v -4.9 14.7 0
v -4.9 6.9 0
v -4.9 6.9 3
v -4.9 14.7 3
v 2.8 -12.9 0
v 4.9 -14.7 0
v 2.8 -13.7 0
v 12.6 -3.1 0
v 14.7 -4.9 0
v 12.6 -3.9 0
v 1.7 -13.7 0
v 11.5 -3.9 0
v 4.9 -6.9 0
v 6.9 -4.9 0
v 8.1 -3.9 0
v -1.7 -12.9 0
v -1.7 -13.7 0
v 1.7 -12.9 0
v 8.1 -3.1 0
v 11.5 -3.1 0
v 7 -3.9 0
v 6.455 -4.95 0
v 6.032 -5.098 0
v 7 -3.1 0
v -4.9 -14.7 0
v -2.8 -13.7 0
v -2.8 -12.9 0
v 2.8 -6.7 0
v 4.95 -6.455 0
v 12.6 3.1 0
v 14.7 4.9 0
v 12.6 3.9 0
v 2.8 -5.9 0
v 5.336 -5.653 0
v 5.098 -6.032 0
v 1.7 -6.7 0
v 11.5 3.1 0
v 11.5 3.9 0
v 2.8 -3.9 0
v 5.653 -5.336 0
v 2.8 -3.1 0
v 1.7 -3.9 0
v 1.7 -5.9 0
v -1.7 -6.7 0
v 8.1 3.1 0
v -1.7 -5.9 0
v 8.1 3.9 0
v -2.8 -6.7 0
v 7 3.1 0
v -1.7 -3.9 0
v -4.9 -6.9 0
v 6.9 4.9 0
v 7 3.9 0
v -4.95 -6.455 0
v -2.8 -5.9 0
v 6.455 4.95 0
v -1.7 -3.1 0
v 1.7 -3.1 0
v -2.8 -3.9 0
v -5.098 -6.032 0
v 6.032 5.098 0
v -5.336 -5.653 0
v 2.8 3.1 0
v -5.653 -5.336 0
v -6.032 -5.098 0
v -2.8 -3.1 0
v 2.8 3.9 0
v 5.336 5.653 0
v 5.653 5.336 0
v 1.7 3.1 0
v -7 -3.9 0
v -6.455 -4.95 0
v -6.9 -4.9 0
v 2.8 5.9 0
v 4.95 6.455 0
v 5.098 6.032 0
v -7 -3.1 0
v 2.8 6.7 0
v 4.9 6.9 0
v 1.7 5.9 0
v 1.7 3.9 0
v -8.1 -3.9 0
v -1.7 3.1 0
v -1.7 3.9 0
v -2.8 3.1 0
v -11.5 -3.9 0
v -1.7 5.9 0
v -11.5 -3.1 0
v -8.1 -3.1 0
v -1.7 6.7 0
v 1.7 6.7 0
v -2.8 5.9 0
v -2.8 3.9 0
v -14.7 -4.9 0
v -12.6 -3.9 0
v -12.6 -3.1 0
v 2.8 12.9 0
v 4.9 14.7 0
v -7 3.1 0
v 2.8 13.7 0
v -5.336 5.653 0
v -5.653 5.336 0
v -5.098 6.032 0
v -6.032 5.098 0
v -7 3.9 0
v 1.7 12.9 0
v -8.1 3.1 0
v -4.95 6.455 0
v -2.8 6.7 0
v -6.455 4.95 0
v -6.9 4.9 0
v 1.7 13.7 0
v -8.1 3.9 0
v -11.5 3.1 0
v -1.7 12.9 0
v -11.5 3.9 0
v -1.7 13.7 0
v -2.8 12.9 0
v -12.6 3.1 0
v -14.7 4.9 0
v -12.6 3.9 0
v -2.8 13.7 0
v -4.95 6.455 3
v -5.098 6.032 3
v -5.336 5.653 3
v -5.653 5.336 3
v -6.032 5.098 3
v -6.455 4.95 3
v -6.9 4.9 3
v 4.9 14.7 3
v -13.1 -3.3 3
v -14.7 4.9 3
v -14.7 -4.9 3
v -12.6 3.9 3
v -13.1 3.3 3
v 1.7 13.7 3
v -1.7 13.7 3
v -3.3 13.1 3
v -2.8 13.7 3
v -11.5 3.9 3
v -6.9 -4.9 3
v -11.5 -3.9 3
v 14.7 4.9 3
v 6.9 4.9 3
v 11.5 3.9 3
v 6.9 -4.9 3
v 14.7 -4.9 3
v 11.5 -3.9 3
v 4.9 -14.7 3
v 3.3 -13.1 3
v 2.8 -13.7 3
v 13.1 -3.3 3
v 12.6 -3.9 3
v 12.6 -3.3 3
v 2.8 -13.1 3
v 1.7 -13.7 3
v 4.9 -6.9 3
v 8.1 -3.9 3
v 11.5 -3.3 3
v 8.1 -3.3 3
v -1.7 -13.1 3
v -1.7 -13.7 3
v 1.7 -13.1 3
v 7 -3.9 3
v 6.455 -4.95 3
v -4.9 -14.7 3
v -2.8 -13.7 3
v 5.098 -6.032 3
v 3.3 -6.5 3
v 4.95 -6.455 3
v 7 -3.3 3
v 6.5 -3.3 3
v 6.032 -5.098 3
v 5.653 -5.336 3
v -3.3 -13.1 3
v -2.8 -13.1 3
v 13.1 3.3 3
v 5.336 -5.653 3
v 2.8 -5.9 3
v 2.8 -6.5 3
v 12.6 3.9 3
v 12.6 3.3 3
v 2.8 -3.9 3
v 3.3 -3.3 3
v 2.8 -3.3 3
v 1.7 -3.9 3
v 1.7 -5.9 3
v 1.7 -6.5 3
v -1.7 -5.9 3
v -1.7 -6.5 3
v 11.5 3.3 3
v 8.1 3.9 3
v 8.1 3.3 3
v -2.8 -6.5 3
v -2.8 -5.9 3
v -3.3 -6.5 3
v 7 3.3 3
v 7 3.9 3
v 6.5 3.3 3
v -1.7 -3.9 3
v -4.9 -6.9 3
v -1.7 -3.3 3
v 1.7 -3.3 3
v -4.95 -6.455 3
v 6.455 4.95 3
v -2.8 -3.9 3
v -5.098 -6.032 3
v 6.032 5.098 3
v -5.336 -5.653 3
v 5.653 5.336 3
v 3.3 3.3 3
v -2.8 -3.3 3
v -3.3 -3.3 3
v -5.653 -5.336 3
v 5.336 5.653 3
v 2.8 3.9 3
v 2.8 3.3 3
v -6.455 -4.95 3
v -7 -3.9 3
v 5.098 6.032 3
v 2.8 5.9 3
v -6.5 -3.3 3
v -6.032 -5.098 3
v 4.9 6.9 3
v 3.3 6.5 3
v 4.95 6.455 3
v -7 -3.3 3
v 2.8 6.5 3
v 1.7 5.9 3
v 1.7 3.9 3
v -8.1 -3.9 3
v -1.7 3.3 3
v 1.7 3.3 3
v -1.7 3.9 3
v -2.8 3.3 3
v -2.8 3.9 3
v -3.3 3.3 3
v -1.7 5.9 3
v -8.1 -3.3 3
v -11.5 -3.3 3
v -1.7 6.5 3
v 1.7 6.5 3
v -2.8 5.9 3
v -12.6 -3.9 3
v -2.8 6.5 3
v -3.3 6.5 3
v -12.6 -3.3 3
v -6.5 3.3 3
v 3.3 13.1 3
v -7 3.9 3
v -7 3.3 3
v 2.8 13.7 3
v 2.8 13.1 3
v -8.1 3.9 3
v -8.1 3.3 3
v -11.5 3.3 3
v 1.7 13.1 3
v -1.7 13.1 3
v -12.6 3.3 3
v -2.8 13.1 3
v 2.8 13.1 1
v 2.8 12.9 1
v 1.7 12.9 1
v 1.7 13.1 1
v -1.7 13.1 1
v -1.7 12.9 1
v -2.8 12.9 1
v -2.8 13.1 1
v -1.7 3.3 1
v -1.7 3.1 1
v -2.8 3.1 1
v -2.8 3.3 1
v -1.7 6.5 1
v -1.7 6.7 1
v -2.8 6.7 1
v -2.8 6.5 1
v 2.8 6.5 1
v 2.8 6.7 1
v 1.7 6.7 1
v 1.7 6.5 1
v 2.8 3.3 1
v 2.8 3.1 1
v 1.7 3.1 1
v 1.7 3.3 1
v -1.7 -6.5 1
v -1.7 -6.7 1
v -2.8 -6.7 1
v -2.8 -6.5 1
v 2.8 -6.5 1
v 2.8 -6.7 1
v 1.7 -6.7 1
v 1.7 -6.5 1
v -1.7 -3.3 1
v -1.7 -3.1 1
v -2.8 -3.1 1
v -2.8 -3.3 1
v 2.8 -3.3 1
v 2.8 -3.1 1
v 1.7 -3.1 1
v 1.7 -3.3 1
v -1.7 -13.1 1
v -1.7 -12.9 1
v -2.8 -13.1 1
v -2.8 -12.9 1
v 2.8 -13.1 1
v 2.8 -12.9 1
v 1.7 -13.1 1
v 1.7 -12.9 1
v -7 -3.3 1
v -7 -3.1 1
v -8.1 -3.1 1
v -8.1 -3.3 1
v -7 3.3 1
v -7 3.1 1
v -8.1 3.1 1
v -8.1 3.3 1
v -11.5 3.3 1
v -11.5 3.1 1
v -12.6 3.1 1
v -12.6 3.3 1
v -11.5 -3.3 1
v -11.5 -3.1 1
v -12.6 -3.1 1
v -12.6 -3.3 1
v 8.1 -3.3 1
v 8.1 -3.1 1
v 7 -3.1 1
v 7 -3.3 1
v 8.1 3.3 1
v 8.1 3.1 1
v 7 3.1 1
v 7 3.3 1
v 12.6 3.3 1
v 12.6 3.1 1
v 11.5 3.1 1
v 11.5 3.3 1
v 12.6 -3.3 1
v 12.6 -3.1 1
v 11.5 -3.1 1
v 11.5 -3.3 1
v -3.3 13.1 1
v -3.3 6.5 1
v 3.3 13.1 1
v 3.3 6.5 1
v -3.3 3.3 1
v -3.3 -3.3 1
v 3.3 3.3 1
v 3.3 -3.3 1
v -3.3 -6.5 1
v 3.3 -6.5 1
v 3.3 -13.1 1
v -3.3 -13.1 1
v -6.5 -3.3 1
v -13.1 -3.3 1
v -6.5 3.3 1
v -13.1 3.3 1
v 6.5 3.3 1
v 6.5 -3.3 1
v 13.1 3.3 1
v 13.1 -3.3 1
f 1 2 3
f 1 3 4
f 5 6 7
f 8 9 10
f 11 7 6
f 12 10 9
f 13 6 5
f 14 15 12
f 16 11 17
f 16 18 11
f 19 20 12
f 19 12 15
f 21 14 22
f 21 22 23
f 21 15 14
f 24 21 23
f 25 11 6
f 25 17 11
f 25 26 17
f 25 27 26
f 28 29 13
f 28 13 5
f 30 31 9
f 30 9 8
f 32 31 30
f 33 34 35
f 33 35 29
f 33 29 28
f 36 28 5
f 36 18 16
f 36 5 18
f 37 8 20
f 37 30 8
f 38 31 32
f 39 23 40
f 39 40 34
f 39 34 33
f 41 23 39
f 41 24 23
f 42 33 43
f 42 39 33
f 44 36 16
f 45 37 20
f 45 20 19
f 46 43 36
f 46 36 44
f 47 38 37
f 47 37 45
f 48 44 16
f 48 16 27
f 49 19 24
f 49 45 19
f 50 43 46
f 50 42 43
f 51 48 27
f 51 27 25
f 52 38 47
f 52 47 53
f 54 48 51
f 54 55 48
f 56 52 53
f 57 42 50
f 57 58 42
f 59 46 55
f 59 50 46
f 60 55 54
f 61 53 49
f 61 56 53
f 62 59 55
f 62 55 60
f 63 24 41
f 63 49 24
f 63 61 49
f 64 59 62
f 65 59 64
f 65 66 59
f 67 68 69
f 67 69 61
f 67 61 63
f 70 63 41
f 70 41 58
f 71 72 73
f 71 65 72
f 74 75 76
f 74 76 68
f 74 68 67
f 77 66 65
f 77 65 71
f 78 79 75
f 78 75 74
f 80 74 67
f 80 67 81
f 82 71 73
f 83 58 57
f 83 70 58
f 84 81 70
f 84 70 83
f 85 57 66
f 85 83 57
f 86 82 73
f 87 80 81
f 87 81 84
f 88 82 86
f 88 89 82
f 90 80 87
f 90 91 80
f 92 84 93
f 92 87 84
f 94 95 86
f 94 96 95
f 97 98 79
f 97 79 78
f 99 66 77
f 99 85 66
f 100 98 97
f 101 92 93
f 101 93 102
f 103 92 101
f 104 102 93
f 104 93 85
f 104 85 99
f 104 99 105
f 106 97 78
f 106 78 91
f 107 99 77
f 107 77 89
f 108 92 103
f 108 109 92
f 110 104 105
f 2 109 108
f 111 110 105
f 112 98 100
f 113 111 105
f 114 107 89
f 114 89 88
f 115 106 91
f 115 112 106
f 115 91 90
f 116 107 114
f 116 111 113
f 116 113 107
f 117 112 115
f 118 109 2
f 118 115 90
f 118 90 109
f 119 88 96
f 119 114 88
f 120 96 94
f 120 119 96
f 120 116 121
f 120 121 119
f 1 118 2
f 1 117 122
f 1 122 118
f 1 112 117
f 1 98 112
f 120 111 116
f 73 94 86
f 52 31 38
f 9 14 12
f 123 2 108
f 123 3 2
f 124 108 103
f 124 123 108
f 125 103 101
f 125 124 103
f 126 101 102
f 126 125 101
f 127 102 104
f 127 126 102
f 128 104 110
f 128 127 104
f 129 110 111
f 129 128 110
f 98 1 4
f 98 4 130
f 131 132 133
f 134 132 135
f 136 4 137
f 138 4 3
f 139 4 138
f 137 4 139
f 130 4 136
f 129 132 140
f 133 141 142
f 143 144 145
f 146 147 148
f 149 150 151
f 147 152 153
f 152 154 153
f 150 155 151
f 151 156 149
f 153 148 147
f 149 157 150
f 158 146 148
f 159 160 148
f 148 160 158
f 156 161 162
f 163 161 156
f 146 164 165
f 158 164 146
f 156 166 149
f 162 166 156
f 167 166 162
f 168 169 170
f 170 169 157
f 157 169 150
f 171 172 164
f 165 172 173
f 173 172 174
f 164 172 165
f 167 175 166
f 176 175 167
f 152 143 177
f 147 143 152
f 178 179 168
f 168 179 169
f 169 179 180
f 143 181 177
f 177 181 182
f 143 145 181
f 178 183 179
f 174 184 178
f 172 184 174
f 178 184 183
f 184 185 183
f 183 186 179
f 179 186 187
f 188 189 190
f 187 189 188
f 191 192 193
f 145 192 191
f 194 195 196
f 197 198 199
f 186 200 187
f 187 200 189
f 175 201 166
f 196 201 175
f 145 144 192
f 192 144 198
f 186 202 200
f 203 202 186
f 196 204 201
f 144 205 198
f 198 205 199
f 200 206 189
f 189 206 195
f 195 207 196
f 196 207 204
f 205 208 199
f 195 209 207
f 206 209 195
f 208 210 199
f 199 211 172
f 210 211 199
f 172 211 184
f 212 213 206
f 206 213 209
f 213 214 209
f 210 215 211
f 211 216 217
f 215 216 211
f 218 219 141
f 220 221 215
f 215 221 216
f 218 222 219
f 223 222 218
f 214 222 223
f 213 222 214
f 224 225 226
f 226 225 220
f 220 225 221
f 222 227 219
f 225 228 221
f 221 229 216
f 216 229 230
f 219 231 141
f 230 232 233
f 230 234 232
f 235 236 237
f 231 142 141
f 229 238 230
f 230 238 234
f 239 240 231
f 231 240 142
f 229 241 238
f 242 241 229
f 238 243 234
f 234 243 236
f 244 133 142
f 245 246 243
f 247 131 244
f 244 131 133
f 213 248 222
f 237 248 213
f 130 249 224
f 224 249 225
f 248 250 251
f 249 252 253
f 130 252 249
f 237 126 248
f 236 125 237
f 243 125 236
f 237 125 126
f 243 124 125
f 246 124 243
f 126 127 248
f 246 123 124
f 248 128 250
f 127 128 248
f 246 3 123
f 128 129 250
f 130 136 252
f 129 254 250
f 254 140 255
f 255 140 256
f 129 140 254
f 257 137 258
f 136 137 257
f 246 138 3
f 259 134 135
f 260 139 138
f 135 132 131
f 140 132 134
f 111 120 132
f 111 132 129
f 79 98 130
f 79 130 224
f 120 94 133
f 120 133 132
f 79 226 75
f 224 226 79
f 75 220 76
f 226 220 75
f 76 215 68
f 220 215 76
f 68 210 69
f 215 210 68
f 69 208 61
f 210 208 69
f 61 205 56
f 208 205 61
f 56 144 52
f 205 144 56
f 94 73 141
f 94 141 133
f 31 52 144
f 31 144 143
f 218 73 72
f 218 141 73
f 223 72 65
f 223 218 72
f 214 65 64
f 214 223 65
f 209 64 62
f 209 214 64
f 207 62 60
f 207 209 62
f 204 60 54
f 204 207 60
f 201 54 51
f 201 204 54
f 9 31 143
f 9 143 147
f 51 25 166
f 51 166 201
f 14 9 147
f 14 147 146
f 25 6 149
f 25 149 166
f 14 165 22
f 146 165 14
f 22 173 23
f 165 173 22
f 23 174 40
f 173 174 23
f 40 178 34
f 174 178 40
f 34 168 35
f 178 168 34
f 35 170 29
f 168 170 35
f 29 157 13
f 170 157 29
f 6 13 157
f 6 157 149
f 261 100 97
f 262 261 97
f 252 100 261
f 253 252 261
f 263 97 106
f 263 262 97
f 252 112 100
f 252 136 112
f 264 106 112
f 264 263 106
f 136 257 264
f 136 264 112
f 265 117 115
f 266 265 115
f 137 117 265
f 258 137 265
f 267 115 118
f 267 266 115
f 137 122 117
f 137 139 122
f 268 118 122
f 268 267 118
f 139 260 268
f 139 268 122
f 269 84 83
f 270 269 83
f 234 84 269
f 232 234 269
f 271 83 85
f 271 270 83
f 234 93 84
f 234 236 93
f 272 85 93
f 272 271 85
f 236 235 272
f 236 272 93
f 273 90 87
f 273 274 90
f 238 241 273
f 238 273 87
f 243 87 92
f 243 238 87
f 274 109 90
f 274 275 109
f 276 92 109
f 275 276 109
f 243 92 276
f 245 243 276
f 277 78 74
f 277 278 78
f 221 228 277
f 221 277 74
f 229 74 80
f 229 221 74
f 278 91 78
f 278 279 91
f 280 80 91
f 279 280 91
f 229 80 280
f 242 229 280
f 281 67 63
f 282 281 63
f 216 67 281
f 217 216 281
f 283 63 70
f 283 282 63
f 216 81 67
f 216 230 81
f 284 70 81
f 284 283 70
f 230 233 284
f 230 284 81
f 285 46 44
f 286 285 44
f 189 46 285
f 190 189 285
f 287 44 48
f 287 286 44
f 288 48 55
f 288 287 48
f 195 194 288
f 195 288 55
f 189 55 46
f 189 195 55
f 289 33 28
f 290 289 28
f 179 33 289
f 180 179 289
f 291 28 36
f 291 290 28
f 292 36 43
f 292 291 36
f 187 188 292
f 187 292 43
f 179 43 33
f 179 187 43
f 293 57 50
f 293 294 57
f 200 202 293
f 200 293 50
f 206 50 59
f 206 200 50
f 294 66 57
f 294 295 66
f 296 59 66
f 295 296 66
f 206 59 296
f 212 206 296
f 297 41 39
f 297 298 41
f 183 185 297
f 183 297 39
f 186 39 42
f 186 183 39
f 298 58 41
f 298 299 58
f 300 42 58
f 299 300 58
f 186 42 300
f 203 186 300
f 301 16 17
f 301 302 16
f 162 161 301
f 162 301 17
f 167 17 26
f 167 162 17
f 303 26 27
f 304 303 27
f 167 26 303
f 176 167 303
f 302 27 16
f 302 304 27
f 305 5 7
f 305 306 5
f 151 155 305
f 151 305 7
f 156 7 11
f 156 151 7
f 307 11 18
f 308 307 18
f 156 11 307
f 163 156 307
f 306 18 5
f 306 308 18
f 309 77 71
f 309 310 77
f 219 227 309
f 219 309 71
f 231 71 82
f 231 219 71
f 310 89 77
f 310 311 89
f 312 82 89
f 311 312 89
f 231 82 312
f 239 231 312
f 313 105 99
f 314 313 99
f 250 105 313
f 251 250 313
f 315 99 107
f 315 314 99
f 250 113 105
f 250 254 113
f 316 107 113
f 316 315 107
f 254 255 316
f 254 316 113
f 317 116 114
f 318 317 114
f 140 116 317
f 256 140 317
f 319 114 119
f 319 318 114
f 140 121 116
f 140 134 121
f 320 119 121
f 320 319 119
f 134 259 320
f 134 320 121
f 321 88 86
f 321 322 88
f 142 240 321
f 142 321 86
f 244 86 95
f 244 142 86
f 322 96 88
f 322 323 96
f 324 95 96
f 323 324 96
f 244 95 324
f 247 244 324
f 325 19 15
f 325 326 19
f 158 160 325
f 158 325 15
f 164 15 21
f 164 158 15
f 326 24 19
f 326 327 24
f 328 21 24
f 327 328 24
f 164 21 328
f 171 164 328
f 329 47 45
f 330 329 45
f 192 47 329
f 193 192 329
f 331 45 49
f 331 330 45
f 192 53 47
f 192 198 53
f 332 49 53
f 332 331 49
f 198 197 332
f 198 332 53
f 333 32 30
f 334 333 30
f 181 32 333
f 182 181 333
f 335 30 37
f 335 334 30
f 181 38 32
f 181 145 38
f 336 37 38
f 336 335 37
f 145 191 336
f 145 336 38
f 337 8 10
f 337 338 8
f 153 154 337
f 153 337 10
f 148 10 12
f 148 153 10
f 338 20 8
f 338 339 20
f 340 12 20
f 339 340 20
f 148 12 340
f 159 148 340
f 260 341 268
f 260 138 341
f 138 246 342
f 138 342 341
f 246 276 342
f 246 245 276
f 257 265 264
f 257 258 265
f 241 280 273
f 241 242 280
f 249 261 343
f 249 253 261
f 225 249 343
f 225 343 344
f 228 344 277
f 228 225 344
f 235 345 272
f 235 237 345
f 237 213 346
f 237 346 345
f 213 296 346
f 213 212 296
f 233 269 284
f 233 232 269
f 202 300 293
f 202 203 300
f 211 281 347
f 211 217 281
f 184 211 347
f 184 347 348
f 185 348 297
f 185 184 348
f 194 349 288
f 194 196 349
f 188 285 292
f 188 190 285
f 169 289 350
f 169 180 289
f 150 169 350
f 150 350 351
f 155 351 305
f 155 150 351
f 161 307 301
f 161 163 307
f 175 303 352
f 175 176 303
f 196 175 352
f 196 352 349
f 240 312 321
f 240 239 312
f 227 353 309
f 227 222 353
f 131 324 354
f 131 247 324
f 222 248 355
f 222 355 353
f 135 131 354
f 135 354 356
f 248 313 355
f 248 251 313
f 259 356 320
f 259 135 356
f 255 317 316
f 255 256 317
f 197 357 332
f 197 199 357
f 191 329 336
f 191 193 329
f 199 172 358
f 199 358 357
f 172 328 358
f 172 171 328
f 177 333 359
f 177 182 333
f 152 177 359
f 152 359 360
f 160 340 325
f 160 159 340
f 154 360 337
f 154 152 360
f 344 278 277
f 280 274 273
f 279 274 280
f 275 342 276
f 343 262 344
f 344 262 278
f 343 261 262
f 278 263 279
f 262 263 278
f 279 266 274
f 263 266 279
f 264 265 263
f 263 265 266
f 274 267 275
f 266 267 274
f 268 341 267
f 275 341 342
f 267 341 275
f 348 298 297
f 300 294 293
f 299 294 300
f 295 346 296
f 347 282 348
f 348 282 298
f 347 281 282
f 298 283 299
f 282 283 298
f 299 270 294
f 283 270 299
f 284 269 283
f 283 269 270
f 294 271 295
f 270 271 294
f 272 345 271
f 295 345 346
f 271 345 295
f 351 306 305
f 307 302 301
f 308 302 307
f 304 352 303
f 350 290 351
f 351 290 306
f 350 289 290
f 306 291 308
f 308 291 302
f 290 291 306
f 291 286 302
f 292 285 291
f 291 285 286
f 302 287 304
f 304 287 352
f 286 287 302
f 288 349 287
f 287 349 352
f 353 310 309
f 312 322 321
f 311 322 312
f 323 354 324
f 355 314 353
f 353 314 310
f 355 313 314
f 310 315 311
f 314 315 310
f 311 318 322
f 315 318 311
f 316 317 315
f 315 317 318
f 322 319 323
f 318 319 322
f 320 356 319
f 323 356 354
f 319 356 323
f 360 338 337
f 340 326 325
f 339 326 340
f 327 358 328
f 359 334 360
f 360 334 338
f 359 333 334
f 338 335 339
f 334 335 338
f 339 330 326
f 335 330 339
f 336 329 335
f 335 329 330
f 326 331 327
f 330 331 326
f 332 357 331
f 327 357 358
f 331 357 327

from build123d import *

# Parameters (mm, degrees)
PAD_DEPTH                          = 3
SKETCH001_W                        = 6.6
SKETCH001_H                        = 6.6
POCKET_DEPTH                       = 2
SKETCH002_W                        = 1.1
SKETCH002_H                        = 0.8
POCKET001_DEPTH                    = 86.372938
SKETCH002_LINEARPATTERN_2_W        = 1.1
SKETCH002_LINEARPATTERN_2_H        = 0.8
POCKET001_LINEARPATTERN_2_DEPTH    = 86.372938
SKETCH001_LINEARPATTERN_2_W        = 6.6
SKETCH001_LINEARPATTERN_2_H        = 6.6
POCKET_LINEARPATTERN_2_DEPTH       = 2
LINEARPATTERN001_COUNT             = 2
LINEARPATTERN001_PITCH             = 9.8
SKETCH001_LINEARPATTERN002_2_W     = 6.6
SKETCH001_LINEARPATTERN002_2_H     = 6.6
POCKET_LINEARPATTERN002_2_DEPTH    = 2
SKETCH002_LINEARPATTERN002_2_W     = 1.1
SKETCH002_LINEARPATTERN002_2_H     = 0.8
POCKET001_LINEARPATTERN002_2_DEPTH = 86.372938
LINEARPATTERN003_COUNT             = 2
LINEARPATTERN003_PITCH             = 9.8
FILLET_R                           = 2


with BuildPart() as part:
    # Sketch → Pad (new body)
    with BuildSketch(Plane.XY):
        Polygon((-4.9, 4.9), (-4.9, 14.7), (4.9, 14.7), (4.9, 4.9), (14.7, 4.9), (14.7, -4.9), (4.9, -4.9), (4.9, -14.7), (-4.9, -14.7), (-4.9, -4.9), (-14.7, -4.9), (-14.7, 4.9), align=None)
    extrude(amount=PAD_DEPTH)

    # Sketch001 (on Face14 of Pad) → Pocket (cut)
    with BuildSketch(Plane.XY.offset(3)):
        Rectangle(SKETCH001_W, SKETCH001_H)
    pocket = extrude(amount=-POCKET_DEPTH, mode=Mode.SUBTRACT)

    # Sketch002 (on Face5 of Pocket) → Pocket001 (cut, through all)
    with BuildSketch(Plane.XY.offset(3)):
        with Locations((-2.25, 3.5)):
            Rectangle(SKETCH002_W, SKETCH002_H)
        with Locations((2.25, 3.5)):
            Rectangle(SKETCH002_W, SKETCH002_H)
        with Locations((2.25, -3.5)):
            Rectangle(SKETCH002_W, SKETCH002_H)
        with Locations((-2.25, -3.5)):
            Rectangle(SKETCH002_W, SKETCH002_H)
    pocket001 = extrude(amount=-POCKET001_DEPTH, mode=Mode.SUBTRACT)

    # Sketch002 LinearPattern 2 → Pocket001 LinearPattern 2 (cut, through all)
    with BuildSketch(Plane(origin=(9.8, 0, 3), x_dir=(1, 0, 0), z_dir=(0, 0, 1))):
        with Locations((-2.25, 3.5)):
            Rectangle(SKETCH002_LINEARPATTERN_2_W, SKETCH002_LINEARPATTERN_2_H)
        with Locations((2.25, 3.5)):
            Rectangle(SKETCH002_LINEARPATTERN_2_W, SKETCH002_LINEARPATTERN_2_H)
        with Locations((2.25, -3.5)):
            Rectangle(SKETCH002_LINEARPATTERN_2_W, SKETCH002_LINEARPATTERN_2_H)
        with Locations((-2.25, -3.5)):
            Rectangle(SKETCH002_LINEARPATTERN_2_W, SKETCH002_LINEARPATTERN_2_H)
    pocket001_linearpattern_2 = extrude(amount=-POCKET001_LINEARPATTERN_2_DEPTH, mode=Mode.SUBTRACT)

    # Sketch001 LinearPattern 2 → Pocket LinearPattern 2 (cut)
    with BuildSketch(Plane(origin=(9.8, 0, 3), x_dir=(1, 0, 0), z_dir=(0, 0, 1))):
        Rectangle(SKETCH001_LINEARPATTERN_2_W, SKETCH001_LINEARPATTERN_2_H)
    pocket_linearpattern_2 = extrude(amount=-POCKET_LINEARPATTERN_2_DEPTH, mode=Mode.SUBTRACT)

    # LinearPattern001: Pocket001, Pocket, Pocket001 LinearPattern 2, Pocket LinearPattern 2 ×2
    with Locations(*[(-i * LINEARPATTERN001_PITCH, 0, 0) for i in range(1, LINEARPATTERN001_COUNT)]):
        add(pocket001, mode=Mode.SUBTRACT)
        add(pocket, mode=Mode.SUBTRACT)
        add(pocket001_linearpattern_2, mode=Mode.SUBTRACT)
        add(pocket_linearpattern_2, mode=Mode.SUBTRACT)

    # Sketch001 LinearPattern002 2 → Pocket LinearPattern002 2 (cut)
    with BuildSketch(Plane(origin=(0, 9.8, 3), x_dir=(1, 0, 0), z_dir=(0, 0, 1))):
        Rectangle(SKETCH001_LINEARPATTERN002_2_W, SKETCH001_LINEARPATTERN002_2_H)
    pocket_linearpattern002_2 = extrude(amount=-POCKET_LINEARPATTERN002_2_DEPTH, mode=Mode.SUBTRACT)

    # Sketch002 LinearPattern002 2 → Pocket001 LinearPattern002 2 (cut, through all)
    with BuildSketch(Plane(origin=(0, 9.8, 3), x_dir=(1, 0, 0), z_dir=(0, 0, 1))):
        with Locations((-2.25, 3.5)):
            Rectangle(SKETCH002_LINEARPATTERN002_2_W, SKETCH002_LINEARPATTERN002_2_H)
        with Locations((2.25, 3.5)):
            Rectangle(SKETCH002_LINEARPATTERN002_2_W, SKETCH002_LINEARPATTERN002_2_H)
        with Locations((2.25, -3.5)):
            Rectangle(SKETCH002_LINEARPATTERN002_2_W, SKETCH002_LINEARPATTERN002_2_H)
        with Locations((-2.25, -3.5)):
            Rectangle(SKETCH002_LINEARPATTERN002_2_W, SKETCH002_LINEARPATTERN002_2_H)
    pocket001_linearpattern002_2 = extrude(amount=-POCKET001_LINEARPATTERN002_2_DEPTH, mode=Mode.SUBTRACT)

    # LinearPattern003: Pocket, Pocket001, Pocket LinearPattern002 2, Pocket001 LinearPattern002 2 ×2
    with Locations(*[(0, -i * LINEARPATTERN003_PITCH, 0) for i in range(1, LINEARPATTERN003_COUNT)]):
        add(pocket, mode=Mode.SUBTRACT)
        add(pocket001, mode=Mode.SUBTRACT)
        add(pocket_linearpattern002_2, mode=Mode.SUBTRACT)
        add(pocket001_linearpattern002_2, mode=Mode.SUBTRACT)

    # Fillet
    fillet_edges = [part.edges().sort_by_distance(p)[0] for p in [
        (-4.9, -4.9, 1.5),
        (4.9, -4.9, 1.5),
        (4.9, 4.9, 1.5),
        (-4.9, 4.9, 1.5),
    ]]
    fillet(fillet_edges, radius=FILLET_R)


solid = part.part
